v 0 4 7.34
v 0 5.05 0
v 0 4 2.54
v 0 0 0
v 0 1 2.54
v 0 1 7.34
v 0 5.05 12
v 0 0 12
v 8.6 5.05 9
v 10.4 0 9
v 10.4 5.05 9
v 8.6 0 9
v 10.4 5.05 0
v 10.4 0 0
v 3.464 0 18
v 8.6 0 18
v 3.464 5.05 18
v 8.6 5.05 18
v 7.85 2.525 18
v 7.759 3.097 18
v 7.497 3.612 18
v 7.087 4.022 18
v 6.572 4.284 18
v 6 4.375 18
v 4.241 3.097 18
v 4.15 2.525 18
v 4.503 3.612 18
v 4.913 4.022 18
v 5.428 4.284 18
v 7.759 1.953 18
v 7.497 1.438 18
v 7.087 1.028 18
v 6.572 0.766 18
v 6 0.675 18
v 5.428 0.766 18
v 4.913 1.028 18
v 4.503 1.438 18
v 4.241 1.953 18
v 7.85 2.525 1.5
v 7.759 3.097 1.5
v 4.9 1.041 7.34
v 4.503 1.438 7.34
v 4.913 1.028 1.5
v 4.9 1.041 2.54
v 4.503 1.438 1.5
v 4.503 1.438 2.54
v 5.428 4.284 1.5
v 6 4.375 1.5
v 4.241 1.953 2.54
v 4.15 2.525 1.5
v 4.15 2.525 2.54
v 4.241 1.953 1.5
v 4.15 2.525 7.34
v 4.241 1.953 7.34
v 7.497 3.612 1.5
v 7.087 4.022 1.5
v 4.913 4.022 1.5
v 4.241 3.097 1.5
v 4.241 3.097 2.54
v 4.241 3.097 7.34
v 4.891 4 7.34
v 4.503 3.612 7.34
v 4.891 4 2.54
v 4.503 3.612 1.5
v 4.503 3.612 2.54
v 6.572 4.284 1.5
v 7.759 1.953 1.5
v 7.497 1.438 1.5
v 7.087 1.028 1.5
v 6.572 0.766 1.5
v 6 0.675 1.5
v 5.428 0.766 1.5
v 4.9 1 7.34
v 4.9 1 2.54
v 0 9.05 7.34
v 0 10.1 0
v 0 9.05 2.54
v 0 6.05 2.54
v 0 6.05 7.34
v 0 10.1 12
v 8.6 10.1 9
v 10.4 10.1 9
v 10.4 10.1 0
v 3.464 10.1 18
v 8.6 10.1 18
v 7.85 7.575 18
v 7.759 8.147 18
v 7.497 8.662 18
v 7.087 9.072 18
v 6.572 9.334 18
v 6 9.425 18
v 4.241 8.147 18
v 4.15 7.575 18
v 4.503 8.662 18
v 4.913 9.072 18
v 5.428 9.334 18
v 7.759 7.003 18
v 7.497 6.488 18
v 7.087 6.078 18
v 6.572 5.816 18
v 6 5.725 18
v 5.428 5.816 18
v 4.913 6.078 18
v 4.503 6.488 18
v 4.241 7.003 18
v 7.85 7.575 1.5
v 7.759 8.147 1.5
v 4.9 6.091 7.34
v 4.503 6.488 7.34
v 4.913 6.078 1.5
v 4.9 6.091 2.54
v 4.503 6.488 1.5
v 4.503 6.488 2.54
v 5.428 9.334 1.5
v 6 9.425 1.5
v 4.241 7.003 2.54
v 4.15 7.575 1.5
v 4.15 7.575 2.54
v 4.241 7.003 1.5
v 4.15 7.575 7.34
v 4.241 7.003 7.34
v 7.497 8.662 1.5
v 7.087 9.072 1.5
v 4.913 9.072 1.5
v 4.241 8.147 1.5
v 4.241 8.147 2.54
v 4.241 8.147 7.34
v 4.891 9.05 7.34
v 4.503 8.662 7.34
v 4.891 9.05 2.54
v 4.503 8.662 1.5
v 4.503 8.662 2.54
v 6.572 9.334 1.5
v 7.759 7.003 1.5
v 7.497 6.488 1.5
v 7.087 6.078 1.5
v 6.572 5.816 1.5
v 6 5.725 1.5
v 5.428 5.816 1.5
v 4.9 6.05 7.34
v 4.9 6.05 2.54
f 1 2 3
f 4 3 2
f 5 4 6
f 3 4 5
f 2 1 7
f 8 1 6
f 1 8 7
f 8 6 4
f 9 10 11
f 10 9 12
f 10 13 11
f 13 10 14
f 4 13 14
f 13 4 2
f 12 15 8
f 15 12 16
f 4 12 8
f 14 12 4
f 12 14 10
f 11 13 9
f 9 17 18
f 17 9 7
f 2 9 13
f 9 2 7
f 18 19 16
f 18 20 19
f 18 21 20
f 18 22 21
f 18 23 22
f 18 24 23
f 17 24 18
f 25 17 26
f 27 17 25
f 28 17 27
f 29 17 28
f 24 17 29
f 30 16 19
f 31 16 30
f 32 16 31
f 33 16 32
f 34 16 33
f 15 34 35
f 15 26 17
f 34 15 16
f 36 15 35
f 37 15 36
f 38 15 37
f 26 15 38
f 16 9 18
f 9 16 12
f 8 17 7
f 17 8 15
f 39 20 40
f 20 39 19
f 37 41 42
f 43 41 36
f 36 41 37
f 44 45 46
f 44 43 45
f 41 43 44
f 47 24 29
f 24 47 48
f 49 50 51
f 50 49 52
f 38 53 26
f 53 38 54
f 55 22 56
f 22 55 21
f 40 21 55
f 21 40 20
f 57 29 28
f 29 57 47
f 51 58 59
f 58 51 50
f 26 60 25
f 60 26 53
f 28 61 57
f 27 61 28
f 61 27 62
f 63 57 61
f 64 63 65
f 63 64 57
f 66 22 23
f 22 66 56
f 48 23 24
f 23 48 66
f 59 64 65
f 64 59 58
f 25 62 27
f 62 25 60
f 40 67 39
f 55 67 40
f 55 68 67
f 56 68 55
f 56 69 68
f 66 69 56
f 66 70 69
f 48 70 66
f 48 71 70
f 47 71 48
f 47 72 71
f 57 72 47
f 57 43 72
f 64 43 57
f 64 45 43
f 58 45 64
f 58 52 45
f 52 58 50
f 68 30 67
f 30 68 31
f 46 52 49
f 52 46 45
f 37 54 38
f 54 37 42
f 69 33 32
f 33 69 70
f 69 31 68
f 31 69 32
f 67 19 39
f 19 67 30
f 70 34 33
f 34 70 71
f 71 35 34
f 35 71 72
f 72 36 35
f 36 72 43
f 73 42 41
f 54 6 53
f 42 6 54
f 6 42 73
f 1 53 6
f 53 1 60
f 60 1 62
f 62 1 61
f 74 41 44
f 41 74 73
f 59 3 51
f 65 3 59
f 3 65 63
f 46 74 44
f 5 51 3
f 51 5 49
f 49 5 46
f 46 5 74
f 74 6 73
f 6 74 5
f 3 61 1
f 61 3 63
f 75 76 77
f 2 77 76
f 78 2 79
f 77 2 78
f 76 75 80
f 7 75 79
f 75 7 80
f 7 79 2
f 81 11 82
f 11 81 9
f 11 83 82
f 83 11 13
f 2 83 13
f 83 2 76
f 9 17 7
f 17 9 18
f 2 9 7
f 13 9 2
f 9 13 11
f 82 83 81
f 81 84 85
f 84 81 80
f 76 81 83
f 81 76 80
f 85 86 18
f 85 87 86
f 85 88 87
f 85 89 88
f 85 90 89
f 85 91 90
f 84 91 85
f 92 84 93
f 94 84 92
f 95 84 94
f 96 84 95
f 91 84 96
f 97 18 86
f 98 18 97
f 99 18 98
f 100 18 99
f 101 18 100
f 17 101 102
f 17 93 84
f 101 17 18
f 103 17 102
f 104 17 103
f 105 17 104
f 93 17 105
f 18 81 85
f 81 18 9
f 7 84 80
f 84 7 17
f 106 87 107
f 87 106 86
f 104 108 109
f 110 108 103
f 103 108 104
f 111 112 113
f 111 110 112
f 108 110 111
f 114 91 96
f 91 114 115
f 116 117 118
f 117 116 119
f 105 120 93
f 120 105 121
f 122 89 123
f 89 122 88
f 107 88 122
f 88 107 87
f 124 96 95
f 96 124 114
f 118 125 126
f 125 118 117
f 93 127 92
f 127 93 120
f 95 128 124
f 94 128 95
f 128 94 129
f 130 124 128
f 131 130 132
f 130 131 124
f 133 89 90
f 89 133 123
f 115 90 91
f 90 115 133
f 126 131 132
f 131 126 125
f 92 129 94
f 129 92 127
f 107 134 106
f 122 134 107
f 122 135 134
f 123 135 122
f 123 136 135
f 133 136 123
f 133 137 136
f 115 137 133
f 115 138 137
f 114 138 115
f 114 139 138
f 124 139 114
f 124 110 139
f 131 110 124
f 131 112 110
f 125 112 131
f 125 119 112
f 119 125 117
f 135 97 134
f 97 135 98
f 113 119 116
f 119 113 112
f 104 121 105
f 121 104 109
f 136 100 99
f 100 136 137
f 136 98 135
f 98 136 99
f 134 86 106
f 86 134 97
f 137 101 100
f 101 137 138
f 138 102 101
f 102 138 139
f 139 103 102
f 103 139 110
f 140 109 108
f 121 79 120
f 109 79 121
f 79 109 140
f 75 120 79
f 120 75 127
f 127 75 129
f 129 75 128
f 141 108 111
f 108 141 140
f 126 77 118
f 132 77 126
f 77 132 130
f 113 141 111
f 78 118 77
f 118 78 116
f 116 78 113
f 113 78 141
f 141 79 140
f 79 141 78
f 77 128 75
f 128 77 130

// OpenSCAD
// Neeraj Verma Aug, 3, 2018
// GPL V3 (https://www.gnu.org/licenses/gpl.txt)

// http://www.noami.us

// This is a mock of the real component
// Do not use on your real device.
/*
  use </path/to/libraries/screw_terminal_block.scad>
  //full
  screw_terminal_block(width=5.05, count=2)
  //simple
  screw_terminal_block();
  */
boxHeight=9;
width=5.05;
count=2;

module body(width=width) {
    difference() {
    union() {
        cube ([10.4,width,boxHeight]);
        translate([0,0,boxHeight]) cube ([8.6,width,boxHeight]);
    }
    translate([0,-0.1,boxHeight*2-6]) rotate([0,-60,0]) cube ([10.4,width+0.2,boxHeight]);    
    }
}

module cutout() {
    // cutout
    translate([6,width/2,boxHeight-7.5]) cylinder(d=3.7,17, $fn=20);    
    translate([-0.1,1,2.54]) cube([5,3,4.8]);
}

module screw_terminal_block(width=width, count=count) {
    for(i=[1:count]) {
        translate([0,width*i-width,0]) difference() {    
            color("LimeGreen") body(width);
            cutout();
        }
    }
}

screw_terminal_block();
